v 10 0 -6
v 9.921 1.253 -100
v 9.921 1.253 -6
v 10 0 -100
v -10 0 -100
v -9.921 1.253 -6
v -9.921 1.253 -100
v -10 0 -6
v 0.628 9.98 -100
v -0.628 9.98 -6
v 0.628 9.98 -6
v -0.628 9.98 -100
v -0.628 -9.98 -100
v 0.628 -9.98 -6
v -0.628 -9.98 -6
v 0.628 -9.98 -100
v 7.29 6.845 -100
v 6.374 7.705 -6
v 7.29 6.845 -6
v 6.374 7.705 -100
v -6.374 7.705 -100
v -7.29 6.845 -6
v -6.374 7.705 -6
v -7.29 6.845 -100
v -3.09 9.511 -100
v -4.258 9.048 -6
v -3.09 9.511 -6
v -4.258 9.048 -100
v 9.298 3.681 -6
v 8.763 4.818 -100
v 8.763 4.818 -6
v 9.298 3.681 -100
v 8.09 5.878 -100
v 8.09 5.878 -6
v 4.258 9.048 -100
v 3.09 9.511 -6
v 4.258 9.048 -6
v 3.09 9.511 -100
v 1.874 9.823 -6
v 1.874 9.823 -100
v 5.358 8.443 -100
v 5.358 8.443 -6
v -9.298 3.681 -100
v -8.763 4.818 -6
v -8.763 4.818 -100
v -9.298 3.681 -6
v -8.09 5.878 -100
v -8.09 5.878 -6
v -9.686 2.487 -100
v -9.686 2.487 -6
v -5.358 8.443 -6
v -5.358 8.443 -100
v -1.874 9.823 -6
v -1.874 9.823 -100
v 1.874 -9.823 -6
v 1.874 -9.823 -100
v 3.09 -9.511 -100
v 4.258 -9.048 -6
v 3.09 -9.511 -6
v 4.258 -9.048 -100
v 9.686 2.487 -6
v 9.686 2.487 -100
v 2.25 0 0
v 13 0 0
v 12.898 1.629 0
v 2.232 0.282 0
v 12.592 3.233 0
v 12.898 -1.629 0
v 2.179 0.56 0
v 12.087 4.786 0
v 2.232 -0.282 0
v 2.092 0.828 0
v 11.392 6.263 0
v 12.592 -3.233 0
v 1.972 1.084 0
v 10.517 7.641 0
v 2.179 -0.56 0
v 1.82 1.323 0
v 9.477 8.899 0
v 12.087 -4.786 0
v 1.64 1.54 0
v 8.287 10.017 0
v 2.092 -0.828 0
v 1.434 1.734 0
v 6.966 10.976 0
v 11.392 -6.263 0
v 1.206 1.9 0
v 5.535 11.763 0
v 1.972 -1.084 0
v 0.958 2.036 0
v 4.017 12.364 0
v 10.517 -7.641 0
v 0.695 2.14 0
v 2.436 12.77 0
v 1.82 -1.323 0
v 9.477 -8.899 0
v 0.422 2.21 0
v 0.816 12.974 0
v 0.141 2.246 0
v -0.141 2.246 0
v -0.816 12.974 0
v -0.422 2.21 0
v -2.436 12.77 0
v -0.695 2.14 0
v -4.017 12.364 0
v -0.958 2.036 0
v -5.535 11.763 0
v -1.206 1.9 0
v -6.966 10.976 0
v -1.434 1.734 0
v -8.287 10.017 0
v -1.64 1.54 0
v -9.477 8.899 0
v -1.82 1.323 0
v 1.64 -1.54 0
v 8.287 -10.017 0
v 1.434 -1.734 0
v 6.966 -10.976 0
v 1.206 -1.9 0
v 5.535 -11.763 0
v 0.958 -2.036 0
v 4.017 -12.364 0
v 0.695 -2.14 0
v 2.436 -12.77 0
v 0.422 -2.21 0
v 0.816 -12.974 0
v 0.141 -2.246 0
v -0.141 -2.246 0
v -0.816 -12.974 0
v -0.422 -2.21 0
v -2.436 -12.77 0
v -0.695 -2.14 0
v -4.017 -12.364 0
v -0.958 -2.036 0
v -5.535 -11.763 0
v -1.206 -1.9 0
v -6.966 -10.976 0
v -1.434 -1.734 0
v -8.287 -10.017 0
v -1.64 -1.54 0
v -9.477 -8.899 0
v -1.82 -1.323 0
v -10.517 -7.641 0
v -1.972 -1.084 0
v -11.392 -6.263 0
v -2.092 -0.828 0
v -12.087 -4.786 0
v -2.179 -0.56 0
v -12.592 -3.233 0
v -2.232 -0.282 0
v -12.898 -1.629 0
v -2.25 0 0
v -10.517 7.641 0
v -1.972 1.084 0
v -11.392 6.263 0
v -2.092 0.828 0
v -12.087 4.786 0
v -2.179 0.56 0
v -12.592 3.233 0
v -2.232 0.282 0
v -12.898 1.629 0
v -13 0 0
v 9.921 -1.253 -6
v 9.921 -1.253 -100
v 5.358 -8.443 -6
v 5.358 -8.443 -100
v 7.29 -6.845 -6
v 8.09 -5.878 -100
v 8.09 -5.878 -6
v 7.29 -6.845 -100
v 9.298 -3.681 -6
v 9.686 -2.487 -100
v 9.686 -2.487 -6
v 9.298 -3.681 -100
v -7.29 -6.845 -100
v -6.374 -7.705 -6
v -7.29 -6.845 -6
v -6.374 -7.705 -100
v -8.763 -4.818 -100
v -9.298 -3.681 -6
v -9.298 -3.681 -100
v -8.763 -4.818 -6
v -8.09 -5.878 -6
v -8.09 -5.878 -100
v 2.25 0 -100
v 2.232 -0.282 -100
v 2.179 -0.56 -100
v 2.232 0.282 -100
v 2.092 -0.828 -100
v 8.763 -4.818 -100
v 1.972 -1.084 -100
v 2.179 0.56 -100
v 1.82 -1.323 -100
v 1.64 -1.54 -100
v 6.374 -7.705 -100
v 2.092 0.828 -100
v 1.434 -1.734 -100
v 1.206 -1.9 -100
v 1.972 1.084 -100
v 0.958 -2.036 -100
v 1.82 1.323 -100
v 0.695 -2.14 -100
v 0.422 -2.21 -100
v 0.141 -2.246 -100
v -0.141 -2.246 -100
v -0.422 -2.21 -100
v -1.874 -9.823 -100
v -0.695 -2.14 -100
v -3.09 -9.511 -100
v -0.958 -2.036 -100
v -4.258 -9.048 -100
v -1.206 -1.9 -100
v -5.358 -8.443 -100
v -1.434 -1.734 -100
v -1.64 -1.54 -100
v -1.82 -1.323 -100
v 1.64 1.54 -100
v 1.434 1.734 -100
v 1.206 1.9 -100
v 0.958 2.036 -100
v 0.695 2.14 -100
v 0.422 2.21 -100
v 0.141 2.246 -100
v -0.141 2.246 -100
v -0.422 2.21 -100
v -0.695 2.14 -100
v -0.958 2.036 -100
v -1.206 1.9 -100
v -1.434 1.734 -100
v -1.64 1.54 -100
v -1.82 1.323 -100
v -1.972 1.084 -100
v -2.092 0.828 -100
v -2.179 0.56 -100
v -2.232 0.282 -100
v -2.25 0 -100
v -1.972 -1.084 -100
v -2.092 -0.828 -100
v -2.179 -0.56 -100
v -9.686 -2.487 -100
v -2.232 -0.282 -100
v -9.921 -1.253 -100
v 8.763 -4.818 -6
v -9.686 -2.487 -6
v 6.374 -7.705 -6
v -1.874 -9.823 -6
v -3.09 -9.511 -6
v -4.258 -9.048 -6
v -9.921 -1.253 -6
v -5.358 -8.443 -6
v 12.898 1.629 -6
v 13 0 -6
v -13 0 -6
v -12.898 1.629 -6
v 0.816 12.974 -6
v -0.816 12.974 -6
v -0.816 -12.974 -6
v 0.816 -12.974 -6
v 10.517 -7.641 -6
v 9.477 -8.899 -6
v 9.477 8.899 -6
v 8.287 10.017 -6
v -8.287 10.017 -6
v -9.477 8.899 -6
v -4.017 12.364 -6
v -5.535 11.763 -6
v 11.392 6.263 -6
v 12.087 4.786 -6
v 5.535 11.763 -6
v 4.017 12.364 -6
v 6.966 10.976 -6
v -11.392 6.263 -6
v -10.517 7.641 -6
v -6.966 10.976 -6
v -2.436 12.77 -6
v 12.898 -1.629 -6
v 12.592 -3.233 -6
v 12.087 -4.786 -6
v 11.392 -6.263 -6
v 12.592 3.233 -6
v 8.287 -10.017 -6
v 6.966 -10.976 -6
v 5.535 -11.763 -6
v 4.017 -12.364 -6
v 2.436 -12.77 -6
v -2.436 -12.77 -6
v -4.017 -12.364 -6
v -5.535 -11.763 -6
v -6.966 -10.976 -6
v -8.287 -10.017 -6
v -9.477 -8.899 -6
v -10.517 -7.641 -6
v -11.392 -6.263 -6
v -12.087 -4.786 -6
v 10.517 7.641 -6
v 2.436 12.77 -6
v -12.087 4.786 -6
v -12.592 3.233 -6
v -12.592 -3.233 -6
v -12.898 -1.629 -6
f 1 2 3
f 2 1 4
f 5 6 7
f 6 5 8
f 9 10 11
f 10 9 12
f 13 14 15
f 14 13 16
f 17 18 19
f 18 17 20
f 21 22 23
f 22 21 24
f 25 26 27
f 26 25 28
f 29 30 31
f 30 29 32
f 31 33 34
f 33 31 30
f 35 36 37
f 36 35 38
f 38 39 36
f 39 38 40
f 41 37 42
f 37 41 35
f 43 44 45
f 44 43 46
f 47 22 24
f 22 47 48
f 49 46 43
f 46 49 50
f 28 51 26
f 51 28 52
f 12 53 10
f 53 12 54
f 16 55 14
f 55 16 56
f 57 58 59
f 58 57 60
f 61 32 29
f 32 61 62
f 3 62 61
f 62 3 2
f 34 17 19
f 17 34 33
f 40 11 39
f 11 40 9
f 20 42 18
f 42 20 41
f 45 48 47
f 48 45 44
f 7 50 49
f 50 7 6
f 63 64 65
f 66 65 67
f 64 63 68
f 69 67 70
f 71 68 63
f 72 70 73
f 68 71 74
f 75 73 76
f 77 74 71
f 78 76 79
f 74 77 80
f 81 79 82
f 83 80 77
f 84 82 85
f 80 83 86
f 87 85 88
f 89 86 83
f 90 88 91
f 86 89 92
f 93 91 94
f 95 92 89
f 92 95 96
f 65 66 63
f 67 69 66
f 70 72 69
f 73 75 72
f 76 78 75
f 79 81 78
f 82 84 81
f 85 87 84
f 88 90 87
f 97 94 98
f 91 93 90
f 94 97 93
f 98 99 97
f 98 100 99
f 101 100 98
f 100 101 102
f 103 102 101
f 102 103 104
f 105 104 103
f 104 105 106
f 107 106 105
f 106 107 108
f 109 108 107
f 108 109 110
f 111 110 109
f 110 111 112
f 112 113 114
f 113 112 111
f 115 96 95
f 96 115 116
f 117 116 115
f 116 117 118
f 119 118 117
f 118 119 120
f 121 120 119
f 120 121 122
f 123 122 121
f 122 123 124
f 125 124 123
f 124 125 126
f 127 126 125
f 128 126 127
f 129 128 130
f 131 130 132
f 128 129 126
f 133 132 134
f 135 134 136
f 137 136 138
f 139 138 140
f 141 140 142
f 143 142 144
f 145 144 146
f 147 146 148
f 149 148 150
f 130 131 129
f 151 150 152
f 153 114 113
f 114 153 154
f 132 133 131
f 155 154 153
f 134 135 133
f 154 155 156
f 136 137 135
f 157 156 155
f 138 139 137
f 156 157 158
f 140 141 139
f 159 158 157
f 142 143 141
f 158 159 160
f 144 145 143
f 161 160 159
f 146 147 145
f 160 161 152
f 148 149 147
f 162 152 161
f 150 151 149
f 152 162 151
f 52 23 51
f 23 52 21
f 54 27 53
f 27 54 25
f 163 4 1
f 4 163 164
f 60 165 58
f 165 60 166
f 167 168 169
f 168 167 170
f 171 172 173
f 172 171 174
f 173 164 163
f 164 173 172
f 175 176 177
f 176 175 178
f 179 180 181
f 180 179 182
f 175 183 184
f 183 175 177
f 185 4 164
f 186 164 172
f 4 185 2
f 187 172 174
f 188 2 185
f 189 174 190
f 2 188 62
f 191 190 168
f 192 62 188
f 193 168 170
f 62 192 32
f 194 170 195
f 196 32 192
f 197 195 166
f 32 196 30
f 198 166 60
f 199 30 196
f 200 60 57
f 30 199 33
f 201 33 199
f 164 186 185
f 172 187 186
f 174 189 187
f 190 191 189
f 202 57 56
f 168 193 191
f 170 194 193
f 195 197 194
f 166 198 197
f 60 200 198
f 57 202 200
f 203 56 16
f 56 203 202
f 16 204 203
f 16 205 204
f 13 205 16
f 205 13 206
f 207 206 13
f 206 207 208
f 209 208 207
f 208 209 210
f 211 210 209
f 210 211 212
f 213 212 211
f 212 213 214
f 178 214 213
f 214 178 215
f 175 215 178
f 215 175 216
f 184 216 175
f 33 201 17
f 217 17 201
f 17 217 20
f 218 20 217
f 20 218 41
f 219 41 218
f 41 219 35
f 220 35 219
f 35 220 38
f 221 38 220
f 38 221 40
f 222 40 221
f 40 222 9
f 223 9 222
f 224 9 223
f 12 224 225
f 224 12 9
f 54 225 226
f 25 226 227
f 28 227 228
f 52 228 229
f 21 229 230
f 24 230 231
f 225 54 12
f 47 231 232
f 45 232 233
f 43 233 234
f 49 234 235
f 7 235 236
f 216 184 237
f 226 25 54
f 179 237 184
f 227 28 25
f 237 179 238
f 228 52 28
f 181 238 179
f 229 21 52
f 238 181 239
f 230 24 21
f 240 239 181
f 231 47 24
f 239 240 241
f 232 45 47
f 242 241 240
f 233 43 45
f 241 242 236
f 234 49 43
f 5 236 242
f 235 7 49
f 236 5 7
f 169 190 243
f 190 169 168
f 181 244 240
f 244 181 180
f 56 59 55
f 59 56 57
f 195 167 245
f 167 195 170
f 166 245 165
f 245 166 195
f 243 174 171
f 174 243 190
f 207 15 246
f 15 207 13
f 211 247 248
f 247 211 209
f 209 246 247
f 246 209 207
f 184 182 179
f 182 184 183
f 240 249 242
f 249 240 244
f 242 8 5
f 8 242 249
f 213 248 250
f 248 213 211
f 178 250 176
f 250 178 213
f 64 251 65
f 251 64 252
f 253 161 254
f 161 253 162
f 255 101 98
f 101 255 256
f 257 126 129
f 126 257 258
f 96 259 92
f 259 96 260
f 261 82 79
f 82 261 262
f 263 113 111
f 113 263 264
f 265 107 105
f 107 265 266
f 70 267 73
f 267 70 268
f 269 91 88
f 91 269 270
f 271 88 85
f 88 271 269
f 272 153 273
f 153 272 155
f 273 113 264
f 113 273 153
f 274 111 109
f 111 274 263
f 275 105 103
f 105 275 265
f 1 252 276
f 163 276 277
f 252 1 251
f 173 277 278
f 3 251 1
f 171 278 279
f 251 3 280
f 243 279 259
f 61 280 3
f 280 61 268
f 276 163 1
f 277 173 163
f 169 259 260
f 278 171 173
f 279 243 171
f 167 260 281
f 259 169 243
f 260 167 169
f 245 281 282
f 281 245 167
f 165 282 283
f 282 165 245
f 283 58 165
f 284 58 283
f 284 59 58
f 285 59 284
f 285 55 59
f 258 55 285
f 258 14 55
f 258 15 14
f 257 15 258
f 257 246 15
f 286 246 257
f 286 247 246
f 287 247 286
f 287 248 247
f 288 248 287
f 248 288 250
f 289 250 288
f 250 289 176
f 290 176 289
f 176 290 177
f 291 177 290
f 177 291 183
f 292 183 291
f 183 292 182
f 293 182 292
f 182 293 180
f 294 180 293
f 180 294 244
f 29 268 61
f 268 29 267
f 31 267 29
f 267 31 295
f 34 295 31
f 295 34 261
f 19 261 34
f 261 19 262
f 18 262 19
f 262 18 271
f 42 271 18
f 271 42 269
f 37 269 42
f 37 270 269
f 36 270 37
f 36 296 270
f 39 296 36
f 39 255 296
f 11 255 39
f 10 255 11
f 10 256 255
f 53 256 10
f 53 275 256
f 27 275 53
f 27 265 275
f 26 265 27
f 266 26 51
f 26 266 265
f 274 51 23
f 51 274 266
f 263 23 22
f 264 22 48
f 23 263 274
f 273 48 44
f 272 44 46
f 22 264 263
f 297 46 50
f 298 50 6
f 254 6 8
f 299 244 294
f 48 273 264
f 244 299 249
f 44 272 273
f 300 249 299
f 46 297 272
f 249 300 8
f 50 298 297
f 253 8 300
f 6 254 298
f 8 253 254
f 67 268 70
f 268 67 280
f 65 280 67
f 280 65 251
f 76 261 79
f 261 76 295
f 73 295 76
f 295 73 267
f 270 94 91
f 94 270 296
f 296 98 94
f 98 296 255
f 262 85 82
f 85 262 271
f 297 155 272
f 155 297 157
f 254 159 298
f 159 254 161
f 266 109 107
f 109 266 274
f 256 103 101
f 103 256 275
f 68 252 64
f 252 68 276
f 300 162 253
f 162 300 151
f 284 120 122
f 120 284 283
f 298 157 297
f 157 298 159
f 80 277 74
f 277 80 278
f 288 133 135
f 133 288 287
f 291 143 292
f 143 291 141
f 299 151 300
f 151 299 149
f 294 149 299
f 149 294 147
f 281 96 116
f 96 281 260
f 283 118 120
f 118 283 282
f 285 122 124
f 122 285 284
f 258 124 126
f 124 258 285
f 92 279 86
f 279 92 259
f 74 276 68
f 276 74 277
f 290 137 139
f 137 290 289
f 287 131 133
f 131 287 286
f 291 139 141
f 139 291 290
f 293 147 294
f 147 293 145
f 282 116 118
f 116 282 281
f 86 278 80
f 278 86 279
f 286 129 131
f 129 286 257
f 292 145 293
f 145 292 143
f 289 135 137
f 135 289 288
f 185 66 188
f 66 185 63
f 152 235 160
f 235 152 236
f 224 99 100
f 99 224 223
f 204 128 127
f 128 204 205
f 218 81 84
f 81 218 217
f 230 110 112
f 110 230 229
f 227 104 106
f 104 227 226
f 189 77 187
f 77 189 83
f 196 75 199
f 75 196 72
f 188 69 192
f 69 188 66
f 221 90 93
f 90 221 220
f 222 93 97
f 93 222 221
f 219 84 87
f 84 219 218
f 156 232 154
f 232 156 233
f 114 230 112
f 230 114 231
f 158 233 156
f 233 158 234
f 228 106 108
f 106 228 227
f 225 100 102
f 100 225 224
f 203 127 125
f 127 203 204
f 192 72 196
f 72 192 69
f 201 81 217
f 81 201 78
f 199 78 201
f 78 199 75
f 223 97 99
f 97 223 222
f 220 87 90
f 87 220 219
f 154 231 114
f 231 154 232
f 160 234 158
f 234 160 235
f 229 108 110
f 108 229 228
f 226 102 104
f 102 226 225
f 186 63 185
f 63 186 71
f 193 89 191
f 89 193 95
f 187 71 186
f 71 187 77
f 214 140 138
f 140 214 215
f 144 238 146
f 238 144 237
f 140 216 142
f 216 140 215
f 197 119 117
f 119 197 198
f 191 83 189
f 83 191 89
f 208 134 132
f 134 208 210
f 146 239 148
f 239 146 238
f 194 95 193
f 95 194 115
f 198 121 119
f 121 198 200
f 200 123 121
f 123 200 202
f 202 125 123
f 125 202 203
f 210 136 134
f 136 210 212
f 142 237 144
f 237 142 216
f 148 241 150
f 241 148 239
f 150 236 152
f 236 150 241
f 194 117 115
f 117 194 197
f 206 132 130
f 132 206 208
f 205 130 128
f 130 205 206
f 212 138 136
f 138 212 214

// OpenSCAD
$fn = 50;


difference() {
	union() {
		translate(v = [0, 0, -100.0000000000]) {
			cylinder(h = 100, r = 10.0000000000);
		}
		translate(v = [0, 0, -6.0000000000]) {
			cylinder(h = 6, r = 13.0000000000);
		}
	}
	union() {
		#translate(v = [0, 0, -100]) {
			cylinder(h = 100, r = 2.2500000000);
		}
	}
}
